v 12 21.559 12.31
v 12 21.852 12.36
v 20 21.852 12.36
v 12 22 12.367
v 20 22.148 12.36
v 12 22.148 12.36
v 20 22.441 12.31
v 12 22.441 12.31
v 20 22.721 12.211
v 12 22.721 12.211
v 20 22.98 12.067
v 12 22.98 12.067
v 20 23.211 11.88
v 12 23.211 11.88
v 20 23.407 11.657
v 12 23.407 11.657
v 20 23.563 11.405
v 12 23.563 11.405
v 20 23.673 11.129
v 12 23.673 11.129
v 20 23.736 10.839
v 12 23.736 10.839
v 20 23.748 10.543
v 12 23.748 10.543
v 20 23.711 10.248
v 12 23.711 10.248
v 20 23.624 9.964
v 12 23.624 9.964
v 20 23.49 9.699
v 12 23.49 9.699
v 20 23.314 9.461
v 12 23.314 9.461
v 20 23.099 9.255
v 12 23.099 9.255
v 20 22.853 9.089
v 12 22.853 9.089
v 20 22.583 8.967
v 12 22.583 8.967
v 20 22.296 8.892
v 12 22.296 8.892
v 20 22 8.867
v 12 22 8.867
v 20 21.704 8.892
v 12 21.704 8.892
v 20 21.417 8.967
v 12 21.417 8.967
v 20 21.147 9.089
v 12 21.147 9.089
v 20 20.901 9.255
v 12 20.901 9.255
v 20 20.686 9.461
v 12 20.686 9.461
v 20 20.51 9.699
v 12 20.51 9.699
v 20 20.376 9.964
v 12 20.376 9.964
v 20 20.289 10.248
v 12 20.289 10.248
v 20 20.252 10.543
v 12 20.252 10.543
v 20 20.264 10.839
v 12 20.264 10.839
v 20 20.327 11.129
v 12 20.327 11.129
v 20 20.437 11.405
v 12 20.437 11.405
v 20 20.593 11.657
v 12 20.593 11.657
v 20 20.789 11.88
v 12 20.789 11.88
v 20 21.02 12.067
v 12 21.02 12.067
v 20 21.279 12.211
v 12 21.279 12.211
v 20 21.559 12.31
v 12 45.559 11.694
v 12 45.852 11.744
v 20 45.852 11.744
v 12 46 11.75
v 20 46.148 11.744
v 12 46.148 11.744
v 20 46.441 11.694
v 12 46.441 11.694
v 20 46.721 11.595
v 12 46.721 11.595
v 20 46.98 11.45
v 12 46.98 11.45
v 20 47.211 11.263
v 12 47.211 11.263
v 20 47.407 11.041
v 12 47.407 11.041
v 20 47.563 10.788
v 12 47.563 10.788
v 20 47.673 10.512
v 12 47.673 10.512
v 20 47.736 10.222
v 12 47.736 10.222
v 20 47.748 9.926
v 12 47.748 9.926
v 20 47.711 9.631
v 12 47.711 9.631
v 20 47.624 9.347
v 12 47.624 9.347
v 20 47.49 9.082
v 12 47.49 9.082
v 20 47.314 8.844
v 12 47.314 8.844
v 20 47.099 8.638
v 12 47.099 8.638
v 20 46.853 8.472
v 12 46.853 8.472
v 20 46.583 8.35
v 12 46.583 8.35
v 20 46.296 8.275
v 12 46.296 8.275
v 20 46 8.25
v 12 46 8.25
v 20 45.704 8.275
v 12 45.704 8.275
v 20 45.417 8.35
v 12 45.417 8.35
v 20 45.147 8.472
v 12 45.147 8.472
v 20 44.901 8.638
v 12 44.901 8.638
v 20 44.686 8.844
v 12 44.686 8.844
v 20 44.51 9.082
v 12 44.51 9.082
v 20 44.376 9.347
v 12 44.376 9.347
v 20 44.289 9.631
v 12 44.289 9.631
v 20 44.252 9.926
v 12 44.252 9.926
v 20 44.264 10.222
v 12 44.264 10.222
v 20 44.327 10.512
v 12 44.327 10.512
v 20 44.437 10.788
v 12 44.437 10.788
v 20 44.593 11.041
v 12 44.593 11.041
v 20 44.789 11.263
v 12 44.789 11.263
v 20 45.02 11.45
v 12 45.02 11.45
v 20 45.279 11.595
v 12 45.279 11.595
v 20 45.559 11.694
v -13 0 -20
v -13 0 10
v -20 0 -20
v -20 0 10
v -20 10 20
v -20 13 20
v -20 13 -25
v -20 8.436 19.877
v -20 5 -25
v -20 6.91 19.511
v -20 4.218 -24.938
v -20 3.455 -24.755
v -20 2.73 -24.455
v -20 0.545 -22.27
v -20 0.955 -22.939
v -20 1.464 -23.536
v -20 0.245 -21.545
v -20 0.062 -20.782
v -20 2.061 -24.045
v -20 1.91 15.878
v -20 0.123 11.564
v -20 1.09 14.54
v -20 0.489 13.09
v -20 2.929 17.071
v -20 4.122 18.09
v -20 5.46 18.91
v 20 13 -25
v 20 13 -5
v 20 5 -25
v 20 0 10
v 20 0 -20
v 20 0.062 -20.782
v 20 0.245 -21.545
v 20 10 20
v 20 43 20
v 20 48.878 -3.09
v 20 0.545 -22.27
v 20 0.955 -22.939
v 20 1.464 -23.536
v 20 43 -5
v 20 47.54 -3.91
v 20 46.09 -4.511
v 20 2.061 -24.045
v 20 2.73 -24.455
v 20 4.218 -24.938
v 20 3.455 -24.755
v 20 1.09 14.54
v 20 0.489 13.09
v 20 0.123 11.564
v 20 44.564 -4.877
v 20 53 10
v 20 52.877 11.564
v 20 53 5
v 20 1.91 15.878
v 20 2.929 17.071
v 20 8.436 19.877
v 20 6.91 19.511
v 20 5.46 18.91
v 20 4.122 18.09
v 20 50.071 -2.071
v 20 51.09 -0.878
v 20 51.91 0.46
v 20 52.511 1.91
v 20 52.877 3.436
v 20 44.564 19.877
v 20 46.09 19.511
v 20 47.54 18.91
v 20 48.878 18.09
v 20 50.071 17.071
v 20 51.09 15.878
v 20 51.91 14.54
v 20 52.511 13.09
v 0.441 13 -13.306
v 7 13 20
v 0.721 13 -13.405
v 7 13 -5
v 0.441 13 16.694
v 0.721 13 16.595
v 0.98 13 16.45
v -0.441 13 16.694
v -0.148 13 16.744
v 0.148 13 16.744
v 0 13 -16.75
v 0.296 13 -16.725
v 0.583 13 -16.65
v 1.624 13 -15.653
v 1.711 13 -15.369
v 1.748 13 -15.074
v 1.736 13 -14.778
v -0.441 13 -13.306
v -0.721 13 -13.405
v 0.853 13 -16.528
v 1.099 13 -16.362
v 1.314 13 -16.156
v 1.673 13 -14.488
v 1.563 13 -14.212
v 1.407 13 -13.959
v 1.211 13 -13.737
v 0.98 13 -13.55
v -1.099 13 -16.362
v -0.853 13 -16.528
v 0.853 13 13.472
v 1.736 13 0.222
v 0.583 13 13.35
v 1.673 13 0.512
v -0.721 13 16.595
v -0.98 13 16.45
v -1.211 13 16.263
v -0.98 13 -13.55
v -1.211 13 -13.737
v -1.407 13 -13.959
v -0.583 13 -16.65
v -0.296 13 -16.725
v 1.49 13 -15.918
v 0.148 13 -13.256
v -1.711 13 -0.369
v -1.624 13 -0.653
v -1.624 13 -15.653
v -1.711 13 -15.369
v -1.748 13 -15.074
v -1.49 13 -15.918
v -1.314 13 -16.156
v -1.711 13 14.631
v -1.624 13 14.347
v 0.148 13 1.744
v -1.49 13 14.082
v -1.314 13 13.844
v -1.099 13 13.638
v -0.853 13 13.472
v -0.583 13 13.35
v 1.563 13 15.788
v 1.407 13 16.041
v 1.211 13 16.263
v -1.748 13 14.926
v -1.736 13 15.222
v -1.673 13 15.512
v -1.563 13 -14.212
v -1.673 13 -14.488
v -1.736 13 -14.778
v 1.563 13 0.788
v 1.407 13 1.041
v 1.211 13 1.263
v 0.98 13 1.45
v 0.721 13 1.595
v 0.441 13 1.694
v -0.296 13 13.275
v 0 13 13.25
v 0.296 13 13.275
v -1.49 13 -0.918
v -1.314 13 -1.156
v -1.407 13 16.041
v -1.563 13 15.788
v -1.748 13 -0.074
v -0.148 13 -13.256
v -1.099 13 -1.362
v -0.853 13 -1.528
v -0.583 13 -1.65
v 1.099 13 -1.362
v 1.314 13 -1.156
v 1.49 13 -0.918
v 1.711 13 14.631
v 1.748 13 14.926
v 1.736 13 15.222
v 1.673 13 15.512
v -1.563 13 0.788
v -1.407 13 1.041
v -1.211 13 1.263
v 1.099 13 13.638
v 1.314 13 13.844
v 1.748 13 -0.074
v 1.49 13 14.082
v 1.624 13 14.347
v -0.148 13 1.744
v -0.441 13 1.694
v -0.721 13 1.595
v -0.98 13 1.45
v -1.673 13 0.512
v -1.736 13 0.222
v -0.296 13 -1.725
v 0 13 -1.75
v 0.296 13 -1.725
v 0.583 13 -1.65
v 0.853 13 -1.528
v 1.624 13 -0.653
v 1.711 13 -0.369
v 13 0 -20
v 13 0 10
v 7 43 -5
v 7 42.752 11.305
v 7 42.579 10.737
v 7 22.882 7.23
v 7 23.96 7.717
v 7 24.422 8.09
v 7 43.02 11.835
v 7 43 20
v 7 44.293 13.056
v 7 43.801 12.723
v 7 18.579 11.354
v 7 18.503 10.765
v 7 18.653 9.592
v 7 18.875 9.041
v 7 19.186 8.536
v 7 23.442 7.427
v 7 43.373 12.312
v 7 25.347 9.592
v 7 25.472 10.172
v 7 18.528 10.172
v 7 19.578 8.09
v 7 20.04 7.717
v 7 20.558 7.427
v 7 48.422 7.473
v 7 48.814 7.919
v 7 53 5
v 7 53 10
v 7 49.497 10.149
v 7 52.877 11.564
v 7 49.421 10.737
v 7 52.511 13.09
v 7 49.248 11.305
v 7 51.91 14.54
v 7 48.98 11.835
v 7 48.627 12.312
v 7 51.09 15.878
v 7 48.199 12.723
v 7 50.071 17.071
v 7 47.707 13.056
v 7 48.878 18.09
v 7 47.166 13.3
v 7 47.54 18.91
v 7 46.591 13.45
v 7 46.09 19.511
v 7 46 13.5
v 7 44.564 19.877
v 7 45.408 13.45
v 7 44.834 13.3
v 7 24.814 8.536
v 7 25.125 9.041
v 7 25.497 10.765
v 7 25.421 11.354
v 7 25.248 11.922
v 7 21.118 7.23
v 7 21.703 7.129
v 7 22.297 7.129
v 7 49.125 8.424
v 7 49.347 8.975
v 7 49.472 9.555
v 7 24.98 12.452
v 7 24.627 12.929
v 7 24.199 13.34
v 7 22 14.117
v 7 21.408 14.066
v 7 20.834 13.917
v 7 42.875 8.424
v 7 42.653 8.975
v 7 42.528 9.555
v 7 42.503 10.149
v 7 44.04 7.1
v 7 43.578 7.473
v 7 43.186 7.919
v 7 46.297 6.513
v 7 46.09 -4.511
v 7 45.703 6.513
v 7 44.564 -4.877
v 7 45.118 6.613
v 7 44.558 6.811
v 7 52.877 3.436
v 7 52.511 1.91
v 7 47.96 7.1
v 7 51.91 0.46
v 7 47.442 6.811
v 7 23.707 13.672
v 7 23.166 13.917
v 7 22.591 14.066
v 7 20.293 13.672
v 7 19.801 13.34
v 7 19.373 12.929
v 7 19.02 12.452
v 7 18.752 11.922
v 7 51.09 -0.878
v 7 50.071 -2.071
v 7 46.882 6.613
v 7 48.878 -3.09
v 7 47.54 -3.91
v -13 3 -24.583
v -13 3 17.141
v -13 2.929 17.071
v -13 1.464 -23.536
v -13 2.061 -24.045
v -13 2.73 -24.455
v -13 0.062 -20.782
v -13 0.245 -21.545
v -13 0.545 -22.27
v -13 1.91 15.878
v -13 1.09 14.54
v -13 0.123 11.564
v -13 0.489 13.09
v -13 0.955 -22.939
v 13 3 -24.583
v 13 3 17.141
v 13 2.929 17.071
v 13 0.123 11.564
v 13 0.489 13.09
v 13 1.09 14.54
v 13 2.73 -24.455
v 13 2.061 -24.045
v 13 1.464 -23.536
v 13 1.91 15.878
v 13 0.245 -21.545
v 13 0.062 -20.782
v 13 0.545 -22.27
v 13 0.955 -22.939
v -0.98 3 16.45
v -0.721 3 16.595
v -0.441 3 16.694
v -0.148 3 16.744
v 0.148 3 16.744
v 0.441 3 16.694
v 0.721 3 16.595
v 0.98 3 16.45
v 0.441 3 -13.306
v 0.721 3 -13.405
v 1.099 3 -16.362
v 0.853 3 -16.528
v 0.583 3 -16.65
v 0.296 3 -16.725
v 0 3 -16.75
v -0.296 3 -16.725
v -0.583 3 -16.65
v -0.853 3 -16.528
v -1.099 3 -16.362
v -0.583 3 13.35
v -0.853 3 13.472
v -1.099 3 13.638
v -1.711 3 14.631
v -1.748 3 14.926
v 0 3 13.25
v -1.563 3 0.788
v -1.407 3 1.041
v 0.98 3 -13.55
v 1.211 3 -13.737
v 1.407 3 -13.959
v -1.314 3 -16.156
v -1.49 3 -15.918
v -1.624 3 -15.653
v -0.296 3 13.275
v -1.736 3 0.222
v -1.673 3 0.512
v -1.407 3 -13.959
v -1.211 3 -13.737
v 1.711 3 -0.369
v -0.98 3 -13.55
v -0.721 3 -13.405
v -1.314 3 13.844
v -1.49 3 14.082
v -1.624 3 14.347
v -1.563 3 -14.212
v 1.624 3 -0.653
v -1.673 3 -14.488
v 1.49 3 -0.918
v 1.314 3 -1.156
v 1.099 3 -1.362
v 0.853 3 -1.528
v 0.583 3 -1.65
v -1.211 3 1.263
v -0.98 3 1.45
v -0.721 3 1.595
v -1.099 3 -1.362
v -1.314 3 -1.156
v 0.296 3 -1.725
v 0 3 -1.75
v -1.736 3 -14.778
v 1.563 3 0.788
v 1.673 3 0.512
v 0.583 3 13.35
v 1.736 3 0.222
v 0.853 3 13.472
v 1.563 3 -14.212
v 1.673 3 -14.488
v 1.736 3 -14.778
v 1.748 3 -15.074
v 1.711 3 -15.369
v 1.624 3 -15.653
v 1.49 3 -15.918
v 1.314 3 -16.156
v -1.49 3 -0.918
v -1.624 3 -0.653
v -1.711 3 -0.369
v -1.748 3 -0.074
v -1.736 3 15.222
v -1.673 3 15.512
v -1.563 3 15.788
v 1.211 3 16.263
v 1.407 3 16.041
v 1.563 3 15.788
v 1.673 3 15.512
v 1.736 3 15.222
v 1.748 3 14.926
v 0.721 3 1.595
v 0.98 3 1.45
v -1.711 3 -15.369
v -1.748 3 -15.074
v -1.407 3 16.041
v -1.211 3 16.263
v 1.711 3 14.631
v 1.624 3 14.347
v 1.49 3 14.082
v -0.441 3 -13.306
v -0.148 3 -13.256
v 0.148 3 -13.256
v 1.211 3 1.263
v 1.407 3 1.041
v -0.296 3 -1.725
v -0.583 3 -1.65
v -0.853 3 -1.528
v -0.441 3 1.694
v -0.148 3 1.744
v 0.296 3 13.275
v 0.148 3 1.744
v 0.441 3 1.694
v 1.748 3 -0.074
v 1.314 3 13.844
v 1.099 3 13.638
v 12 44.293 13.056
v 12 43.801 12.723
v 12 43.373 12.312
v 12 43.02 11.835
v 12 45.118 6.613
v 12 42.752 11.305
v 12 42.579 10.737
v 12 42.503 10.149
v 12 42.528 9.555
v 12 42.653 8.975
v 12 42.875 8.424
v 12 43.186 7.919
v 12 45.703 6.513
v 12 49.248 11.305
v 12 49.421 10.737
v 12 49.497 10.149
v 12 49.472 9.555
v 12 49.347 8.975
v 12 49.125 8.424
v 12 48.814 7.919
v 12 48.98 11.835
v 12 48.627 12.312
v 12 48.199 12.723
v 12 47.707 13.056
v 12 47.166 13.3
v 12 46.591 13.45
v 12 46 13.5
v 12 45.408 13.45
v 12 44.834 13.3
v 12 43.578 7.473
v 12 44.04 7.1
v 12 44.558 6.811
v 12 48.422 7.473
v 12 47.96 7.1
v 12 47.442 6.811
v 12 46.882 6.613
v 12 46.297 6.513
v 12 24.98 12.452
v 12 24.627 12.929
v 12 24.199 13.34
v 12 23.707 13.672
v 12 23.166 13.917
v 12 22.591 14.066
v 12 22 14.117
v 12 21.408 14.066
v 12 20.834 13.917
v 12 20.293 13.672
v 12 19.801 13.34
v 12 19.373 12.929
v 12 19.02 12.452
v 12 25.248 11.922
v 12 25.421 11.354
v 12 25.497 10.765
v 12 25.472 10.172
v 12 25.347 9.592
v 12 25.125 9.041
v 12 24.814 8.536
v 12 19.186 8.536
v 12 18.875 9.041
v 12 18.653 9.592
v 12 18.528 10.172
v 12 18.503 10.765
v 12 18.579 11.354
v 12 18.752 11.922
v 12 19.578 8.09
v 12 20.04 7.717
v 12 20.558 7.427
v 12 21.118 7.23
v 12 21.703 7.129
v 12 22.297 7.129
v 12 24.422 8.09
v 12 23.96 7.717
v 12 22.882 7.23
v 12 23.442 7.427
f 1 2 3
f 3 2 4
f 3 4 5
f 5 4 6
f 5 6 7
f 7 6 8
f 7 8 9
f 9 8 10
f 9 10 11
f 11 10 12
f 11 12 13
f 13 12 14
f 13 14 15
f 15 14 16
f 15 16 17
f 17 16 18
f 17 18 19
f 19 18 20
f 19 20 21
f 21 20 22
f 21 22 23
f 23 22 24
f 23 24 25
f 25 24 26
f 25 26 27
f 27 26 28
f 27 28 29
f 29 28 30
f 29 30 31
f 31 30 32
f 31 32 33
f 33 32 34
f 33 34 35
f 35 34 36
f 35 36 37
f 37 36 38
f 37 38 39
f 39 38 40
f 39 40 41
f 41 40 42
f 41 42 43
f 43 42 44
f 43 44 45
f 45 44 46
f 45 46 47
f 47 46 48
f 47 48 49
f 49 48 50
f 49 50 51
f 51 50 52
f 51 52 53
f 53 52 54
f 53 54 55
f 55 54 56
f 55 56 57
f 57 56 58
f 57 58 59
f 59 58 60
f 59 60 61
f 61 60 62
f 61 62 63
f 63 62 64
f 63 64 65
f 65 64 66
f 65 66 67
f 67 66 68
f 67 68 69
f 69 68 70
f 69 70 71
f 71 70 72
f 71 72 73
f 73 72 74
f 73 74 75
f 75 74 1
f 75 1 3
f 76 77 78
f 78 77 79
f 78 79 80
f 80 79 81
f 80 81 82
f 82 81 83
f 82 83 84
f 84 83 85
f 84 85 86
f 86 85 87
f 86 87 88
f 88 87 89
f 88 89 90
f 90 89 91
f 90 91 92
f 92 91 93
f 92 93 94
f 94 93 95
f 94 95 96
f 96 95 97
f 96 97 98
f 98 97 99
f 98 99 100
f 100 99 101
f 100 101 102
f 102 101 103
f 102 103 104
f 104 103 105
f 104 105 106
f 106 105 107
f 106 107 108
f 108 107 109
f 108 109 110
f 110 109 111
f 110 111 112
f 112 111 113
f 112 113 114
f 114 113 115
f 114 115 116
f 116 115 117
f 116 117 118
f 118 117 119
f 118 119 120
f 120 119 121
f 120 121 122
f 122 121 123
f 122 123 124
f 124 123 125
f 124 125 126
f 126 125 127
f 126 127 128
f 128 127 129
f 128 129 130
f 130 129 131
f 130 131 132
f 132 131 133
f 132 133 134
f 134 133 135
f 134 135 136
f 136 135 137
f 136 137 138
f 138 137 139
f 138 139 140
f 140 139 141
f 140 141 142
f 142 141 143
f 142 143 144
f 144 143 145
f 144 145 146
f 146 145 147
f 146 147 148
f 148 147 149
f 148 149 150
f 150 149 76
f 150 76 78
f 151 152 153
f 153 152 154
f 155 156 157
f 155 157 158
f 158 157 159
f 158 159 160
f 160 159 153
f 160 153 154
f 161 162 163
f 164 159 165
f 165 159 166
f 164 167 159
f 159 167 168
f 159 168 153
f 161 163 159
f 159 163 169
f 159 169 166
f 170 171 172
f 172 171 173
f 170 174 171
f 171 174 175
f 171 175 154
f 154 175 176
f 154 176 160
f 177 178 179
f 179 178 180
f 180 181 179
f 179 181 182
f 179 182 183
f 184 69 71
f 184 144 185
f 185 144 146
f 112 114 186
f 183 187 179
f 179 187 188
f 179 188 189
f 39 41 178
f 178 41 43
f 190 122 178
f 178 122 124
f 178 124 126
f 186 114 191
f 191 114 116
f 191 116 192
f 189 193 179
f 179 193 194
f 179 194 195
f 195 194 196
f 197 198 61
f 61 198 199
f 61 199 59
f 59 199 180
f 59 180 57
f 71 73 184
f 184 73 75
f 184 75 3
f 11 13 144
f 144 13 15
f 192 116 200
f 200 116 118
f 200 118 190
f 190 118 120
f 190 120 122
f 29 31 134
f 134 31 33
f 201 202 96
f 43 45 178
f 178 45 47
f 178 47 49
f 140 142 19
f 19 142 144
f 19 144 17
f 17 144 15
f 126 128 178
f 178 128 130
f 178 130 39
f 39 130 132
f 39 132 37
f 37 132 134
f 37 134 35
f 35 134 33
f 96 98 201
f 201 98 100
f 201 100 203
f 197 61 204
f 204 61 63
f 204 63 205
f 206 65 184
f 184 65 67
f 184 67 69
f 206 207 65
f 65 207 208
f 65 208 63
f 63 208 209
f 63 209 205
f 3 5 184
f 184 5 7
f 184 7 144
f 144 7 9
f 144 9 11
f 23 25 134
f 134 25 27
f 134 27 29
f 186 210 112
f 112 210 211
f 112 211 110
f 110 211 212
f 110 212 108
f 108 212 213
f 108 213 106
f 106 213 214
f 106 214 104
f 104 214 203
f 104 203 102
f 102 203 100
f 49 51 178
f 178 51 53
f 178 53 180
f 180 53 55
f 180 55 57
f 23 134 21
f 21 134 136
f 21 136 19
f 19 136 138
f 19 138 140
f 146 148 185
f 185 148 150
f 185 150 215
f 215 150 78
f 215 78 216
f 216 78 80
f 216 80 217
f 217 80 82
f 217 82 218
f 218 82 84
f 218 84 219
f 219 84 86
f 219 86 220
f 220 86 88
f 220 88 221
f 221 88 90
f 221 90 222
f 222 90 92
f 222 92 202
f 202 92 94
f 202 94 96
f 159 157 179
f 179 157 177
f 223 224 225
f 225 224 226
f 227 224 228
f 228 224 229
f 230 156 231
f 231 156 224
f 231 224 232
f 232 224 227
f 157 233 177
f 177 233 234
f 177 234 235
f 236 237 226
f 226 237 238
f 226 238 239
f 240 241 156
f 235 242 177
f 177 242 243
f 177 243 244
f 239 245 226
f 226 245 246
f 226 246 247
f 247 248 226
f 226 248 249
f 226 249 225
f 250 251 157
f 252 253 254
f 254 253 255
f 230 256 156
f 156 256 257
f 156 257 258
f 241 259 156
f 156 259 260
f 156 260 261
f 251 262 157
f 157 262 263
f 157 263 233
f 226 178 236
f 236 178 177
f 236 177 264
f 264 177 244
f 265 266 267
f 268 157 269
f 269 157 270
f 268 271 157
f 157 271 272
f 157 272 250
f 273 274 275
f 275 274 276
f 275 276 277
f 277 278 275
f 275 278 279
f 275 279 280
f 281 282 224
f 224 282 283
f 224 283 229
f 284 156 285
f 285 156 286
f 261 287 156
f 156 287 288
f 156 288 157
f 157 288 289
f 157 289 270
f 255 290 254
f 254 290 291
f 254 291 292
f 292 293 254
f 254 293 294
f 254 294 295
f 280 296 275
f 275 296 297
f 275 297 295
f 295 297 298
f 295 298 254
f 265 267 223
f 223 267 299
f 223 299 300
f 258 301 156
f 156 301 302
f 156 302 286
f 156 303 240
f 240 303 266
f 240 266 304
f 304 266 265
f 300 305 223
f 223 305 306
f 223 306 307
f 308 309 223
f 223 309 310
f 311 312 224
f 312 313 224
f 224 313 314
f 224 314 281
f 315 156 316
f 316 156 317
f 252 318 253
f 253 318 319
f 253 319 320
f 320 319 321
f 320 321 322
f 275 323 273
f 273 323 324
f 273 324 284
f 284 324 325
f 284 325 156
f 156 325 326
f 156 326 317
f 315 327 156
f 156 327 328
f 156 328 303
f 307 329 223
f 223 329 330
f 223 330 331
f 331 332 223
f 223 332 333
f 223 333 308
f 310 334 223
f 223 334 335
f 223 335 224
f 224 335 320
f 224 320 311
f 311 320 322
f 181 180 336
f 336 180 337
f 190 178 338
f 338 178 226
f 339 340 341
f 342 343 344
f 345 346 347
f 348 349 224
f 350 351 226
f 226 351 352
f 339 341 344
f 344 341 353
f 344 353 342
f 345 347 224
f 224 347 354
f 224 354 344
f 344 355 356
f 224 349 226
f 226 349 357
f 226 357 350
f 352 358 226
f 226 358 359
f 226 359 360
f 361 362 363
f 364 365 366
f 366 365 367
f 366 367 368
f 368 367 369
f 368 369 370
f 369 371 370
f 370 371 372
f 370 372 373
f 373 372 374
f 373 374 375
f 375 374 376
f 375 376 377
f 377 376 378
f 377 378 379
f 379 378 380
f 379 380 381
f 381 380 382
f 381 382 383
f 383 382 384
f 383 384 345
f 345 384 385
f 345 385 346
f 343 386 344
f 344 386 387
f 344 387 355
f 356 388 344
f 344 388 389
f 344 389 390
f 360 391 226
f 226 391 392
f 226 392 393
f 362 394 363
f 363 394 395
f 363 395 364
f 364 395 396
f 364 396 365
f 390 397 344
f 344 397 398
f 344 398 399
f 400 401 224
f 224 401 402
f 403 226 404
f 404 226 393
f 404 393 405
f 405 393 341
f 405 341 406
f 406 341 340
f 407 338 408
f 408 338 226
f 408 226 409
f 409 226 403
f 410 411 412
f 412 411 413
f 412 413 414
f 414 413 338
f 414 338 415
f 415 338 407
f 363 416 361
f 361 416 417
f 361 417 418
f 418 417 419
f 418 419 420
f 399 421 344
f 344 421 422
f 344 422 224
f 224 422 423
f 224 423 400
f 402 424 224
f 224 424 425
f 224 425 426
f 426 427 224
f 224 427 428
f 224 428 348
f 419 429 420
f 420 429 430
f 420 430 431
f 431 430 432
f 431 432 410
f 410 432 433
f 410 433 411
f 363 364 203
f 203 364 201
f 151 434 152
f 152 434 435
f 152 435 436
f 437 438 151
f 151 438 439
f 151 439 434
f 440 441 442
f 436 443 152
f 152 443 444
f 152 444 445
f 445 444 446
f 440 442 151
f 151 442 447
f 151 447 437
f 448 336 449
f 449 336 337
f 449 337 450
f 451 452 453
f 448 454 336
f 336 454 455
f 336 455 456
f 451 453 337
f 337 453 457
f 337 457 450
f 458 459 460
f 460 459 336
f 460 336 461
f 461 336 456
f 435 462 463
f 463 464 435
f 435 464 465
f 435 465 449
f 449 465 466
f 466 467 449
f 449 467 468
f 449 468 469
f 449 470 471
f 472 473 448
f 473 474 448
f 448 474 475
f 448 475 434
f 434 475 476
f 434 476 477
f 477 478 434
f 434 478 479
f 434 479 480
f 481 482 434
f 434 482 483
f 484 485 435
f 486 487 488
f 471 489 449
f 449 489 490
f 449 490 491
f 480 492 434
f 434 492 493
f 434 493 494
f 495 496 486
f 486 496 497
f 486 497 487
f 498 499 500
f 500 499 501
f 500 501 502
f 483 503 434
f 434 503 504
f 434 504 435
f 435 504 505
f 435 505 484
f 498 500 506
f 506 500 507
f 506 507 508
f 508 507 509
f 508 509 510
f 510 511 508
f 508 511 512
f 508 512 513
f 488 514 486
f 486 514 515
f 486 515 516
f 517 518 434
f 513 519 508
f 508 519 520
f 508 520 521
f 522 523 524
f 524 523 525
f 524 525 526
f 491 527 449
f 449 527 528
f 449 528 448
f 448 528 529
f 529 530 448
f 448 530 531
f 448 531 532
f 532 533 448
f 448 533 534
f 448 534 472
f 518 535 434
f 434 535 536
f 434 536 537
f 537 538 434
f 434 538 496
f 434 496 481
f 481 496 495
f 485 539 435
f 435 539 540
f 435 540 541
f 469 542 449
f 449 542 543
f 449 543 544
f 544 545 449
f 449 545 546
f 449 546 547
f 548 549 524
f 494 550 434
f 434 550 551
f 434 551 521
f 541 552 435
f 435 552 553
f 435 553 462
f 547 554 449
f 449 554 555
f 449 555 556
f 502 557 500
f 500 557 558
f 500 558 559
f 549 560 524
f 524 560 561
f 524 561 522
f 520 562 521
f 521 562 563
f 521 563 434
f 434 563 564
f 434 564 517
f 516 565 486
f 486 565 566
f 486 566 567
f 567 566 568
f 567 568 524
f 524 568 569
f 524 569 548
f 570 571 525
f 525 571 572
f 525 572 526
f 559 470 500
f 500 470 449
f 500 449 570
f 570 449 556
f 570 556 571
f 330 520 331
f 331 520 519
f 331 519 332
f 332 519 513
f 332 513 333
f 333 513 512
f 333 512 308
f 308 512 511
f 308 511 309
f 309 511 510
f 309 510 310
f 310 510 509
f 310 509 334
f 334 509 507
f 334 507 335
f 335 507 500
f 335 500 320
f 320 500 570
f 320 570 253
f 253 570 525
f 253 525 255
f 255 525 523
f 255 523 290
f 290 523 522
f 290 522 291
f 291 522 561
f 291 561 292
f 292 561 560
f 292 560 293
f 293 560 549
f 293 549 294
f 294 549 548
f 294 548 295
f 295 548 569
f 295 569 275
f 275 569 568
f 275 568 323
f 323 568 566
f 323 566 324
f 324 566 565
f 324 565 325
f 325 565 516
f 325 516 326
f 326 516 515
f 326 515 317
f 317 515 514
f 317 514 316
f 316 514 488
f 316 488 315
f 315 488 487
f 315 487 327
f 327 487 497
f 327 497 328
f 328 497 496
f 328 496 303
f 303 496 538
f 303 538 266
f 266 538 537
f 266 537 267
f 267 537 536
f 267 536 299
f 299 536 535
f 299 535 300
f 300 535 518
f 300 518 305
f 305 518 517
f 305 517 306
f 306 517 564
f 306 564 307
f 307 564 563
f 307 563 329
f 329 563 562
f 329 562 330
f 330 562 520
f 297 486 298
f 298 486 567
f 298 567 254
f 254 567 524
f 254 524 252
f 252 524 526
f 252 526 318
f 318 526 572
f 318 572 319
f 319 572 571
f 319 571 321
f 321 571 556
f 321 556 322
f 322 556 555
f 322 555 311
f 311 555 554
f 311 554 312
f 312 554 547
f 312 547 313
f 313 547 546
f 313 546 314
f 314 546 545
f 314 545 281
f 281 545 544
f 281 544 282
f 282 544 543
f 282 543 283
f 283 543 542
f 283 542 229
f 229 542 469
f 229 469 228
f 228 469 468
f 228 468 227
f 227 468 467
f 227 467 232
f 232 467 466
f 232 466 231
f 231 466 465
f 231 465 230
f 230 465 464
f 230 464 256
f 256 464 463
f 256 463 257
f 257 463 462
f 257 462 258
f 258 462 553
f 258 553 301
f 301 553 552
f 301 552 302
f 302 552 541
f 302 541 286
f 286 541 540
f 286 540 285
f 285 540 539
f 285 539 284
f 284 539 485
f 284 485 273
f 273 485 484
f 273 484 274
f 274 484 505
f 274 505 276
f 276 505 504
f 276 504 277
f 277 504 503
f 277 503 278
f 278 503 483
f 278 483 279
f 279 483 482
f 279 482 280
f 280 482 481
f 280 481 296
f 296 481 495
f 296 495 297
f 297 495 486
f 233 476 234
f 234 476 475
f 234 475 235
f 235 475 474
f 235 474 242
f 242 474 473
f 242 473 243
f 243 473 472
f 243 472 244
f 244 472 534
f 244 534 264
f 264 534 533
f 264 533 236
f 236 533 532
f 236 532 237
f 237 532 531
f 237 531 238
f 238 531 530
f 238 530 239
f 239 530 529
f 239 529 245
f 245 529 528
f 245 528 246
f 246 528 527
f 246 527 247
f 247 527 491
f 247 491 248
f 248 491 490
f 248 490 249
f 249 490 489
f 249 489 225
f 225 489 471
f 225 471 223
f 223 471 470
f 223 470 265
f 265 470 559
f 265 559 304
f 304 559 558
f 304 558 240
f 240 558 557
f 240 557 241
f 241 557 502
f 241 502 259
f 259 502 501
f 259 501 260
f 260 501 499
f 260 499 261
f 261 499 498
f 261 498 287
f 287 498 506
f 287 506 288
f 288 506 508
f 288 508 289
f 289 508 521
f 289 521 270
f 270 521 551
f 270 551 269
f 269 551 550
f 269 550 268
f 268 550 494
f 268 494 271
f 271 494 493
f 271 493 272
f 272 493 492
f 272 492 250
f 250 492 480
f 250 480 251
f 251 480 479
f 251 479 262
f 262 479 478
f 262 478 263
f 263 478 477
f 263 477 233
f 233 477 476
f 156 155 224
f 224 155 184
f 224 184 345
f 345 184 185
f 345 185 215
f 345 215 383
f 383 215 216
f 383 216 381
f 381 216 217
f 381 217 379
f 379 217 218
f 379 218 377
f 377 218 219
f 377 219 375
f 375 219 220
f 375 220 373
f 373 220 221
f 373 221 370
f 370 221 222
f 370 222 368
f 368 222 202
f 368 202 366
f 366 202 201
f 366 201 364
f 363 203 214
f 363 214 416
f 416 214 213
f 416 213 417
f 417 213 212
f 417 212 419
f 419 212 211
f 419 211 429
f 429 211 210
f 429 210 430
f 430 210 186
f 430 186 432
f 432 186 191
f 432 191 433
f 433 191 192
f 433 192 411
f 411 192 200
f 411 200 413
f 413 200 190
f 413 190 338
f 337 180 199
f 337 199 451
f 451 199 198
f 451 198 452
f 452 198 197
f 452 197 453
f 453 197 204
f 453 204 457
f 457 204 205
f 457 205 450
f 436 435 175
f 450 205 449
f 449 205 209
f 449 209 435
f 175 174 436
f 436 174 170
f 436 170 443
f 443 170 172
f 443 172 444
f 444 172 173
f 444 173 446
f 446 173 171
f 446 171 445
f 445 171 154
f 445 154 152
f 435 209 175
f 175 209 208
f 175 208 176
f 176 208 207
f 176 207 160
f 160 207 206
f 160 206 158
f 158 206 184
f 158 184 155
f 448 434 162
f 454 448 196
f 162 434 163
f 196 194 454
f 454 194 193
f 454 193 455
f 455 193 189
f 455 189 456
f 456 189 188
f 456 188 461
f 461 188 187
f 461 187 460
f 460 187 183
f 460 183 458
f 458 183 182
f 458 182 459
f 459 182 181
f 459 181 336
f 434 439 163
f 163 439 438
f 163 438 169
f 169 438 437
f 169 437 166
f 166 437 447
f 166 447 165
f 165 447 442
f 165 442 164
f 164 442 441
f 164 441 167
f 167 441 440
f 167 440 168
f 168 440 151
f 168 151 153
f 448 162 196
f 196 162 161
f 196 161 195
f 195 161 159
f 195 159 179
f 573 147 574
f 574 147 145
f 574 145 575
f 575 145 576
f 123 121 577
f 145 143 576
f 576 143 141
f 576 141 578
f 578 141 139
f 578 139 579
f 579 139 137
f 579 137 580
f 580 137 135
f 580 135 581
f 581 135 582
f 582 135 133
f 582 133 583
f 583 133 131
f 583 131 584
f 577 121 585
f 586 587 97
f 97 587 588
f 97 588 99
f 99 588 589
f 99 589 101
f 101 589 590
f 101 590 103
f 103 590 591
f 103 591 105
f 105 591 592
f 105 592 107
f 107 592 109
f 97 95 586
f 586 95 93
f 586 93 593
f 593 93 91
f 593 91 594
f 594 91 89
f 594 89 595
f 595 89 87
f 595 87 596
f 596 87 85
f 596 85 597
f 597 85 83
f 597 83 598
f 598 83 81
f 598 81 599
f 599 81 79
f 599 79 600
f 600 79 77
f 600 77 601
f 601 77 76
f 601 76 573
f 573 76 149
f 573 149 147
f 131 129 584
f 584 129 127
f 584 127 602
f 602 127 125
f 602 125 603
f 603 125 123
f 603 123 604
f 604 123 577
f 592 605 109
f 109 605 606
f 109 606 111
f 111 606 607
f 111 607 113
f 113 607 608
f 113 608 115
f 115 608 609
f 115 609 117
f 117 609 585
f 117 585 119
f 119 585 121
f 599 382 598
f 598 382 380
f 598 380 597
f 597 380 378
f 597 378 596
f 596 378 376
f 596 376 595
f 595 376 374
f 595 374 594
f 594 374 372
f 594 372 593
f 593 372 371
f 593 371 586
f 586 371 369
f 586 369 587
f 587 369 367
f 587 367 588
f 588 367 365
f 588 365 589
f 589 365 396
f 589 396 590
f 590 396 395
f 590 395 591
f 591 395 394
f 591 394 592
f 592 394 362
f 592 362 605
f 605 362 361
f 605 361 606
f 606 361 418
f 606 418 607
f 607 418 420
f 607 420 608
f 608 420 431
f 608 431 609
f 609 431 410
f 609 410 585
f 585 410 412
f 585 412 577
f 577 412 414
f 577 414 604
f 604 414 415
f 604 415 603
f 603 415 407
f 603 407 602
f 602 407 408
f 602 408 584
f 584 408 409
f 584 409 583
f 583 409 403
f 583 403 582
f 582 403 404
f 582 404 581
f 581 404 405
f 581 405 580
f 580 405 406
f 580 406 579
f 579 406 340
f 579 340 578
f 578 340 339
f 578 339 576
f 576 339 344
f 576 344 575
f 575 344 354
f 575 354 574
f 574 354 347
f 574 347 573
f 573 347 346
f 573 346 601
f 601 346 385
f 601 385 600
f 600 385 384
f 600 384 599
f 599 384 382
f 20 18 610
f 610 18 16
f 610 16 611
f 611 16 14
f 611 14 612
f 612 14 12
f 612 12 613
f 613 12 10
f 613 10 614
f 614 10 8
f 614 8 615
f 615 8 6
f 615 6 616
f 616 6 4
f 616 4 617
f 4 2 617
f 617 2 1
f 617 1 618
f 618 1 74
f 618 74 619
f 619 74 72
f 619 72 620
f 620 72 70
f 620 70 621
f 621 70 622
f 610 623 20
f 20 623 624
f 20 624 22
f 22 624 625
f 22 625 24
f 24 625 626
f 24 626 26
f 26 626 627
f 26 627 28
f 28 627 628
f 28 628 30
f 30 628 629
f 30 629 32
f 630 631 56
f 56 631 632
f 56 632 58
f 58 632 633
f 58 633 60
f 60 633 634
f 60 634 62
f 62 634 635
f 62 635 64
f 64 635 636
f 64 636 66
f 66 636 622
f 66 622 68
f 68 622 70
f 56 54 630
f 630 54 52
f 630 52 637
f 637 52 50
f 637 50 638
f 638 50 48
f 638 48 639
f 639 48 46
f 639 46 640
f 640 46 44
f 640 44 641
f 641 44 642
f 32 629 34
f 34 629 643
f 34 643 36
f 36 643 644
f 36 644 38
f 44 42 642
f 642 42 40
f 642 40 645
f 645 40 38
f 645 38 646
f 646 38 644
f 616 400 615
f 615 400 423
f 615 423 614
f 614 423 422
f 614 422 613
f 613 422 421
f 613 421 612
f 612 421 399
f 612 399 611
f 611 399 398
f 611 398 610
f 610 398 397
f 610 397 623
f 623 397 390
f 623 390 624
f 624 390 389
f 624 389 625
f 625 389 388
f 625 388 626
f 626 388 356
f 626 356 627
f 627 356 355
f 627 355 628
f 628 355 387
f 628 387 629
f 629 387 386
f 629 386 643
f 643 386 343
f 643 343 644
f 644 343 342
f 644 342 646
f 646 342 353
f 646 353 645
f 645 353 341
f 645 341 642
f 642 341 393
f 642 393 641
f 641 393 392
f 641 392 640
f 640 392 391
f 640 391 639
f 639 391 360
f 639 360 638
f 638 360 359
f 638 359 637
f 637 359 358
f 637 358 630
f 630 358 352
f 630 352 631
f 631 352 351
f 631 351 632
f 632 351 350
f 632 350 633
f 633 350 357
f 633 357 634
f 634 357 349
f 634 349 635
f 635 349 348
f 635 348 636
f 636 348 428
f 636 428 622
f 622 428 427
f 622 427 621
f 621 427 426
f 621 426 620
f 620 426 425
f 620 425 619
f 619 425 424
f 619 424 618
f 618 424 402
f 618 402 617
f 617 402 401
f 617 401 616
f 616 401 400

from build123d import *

# Parameters (mm, degrees)
SKETCH1_W           = 40
SKETCH1_H           = 50
BOSS_EXTRUDE1_DEPTH = 13
SKETCH2_W           = 13
SKETCH2_H           = 30
BOSS_EXTRUDE2_DEPTH = 40
SKETCH3_R           = 1.75
CUT_EXTRUDE1_DEPTH  = 32
SKETCH4_W           = 26
SKETCH4_H           = 50
CUT_EXTRUDE2_DEPTH  = 3
SKETCH5_R           = 1.75
CUT_EXTRUDE3_DEPTH  = 10
SKETCH6_W           = 40
SKETCH6_H           = 53
CUT_EXTRUDE4_DEPTH  = 5
FILLET1_R           = 10
FILLET2_R           = 10
FILLET3_R           = 10
FILLET4_R           = 5
SKETCH7_R           = 3.5
CUT_EXTRUDE5_DEPTH  = 5


with BuildPart() as part:
    # Sketch1 → Boss-Extrude1 (new body)
    with BuildSketch(Plane(origin=(0, 0, 0), x_dir=(1, 0, 0), z_dir=(0, 1, 0))):
        Rectangle(SKETCH1_W, SKETCH1_H)
    extrude(amount=BOSS_EXTRUDE1_DEPTH)

    # Sketch2 → Boss-Extrude2 (add)
    with BuildSketch(Plane(origin=(0, 13, 0), x_dir=(1, 0, 0), z_dir=(0, 1, 0))):
        with Locations((13.5, -10)):
            Rectangle(SKETCH2_W, SKETCH2_H)
    extrude(amount=BOSS_EXTRUDE2_DEPTH)

    # Sketch3 → Cut-Extrude1 (cut)
    with BuildSketch(Plane(origin=(20, 0, 0), x_dir=(0, 0, -1), z_dir=(1, 0, 0))):
        with Locations((-10, 46)):
            Circle(SKETCH3_R)
        with Locations((-10.616810137, 22)):
            Circle(SKETCH3_R)
    extrude(amount=-CUT_EXTRUDE1_DEPTH, mode=Mode.SUBTRACT)

    # Sketch4 → Cut-Extrude2 (cut)
    with BuildSketch(Plane(origin=(0, 0, 0), x_dir=(-1, 0, 0), z_dir=(0, -1, 0))):
        Rectangle(SKETCH4_W, SKETCH4_H)
    extrude(amount=-CUT_EXTRUDE2_DEPTH, mode=Mode.SUBTRACT)

    # Sketch5 → Cut-Extrude3 (cut)
    with BuildSketch(Plane(origin=(0, 3, 0), x_dir=(-1, 0, 0), z_dir=(0, -1, 0))):
        with Locations(Location((0, 0, 0), (0, 0, 90))):
            Circle(SKETCH5_R)
        with Locations(Location((0, -15, 0), (0, 0, 90))):
            Circle(SKETCH5_R)
        with Locations(Location((0, 15, 0), (0, 0, 90))):
            Circle(SKETCH5_R)
    extrude(amount=-CUT_EXTRUDE3_DEPTH, mode=Mode.SUBTRACT)

    # Sketch6 → Cut-Extrude4 (cut)
    with BuildSketch(Plane.XY.offset(25)):
        with Locations((0, 26.5)):
            Rectangle(SKETCH6_W, SKETCH6_H)
    extrude(amount=-CUT_EXTRUDE4_DEPTH, mode=Mode.SUBTRACT)

    # Fillet1
    fillet1_edges = [part.edges().sort_by_distance(p)[0] for p in [
        (13.5, 53, 20),
    ]]
    fillet(fillet1_edges, radius=FILLET1_R)

    # Fillet2
    fillet2_edges = [part.edges().sort_by_distance(p)[0] for p in [
        (13.5, 53, -5),
    ]]
    fillet(fillet2_edges, radius=FILLET2_R)

    # Fillet3
    fillet3_edges = [part.edges().sort_by_distance(p)[0] for p in [
        (-16.5, 0, 20),
    ]]
    fillet(fillet3_edges, radius=FILLET3_R)

    # Fillet4
    fillet4_edges = [part.edges().sort_by_distance(p)[0] for p in [
        (-16.5, 0, -25),
    ]]
    fillet(fillet4_edges, radius=FILLET4_R - 0.0001)  # a hair under: the kernel refuses the full size

    # Sketch7 → Cut-Extrude5 (cut)
    with BuildSketch(Plane.ZY.offset(-7)):
        with Locations((10.616810137, 22)):
            Circle(SKETCH7_R)
        with Locations((10, 46)):
            Circle(SKETCH7_R)
    extrude(amount=-CUT_EXTRUDE5_DEPTH, mode=Mode.SUBTRACT)


solid = part.part
